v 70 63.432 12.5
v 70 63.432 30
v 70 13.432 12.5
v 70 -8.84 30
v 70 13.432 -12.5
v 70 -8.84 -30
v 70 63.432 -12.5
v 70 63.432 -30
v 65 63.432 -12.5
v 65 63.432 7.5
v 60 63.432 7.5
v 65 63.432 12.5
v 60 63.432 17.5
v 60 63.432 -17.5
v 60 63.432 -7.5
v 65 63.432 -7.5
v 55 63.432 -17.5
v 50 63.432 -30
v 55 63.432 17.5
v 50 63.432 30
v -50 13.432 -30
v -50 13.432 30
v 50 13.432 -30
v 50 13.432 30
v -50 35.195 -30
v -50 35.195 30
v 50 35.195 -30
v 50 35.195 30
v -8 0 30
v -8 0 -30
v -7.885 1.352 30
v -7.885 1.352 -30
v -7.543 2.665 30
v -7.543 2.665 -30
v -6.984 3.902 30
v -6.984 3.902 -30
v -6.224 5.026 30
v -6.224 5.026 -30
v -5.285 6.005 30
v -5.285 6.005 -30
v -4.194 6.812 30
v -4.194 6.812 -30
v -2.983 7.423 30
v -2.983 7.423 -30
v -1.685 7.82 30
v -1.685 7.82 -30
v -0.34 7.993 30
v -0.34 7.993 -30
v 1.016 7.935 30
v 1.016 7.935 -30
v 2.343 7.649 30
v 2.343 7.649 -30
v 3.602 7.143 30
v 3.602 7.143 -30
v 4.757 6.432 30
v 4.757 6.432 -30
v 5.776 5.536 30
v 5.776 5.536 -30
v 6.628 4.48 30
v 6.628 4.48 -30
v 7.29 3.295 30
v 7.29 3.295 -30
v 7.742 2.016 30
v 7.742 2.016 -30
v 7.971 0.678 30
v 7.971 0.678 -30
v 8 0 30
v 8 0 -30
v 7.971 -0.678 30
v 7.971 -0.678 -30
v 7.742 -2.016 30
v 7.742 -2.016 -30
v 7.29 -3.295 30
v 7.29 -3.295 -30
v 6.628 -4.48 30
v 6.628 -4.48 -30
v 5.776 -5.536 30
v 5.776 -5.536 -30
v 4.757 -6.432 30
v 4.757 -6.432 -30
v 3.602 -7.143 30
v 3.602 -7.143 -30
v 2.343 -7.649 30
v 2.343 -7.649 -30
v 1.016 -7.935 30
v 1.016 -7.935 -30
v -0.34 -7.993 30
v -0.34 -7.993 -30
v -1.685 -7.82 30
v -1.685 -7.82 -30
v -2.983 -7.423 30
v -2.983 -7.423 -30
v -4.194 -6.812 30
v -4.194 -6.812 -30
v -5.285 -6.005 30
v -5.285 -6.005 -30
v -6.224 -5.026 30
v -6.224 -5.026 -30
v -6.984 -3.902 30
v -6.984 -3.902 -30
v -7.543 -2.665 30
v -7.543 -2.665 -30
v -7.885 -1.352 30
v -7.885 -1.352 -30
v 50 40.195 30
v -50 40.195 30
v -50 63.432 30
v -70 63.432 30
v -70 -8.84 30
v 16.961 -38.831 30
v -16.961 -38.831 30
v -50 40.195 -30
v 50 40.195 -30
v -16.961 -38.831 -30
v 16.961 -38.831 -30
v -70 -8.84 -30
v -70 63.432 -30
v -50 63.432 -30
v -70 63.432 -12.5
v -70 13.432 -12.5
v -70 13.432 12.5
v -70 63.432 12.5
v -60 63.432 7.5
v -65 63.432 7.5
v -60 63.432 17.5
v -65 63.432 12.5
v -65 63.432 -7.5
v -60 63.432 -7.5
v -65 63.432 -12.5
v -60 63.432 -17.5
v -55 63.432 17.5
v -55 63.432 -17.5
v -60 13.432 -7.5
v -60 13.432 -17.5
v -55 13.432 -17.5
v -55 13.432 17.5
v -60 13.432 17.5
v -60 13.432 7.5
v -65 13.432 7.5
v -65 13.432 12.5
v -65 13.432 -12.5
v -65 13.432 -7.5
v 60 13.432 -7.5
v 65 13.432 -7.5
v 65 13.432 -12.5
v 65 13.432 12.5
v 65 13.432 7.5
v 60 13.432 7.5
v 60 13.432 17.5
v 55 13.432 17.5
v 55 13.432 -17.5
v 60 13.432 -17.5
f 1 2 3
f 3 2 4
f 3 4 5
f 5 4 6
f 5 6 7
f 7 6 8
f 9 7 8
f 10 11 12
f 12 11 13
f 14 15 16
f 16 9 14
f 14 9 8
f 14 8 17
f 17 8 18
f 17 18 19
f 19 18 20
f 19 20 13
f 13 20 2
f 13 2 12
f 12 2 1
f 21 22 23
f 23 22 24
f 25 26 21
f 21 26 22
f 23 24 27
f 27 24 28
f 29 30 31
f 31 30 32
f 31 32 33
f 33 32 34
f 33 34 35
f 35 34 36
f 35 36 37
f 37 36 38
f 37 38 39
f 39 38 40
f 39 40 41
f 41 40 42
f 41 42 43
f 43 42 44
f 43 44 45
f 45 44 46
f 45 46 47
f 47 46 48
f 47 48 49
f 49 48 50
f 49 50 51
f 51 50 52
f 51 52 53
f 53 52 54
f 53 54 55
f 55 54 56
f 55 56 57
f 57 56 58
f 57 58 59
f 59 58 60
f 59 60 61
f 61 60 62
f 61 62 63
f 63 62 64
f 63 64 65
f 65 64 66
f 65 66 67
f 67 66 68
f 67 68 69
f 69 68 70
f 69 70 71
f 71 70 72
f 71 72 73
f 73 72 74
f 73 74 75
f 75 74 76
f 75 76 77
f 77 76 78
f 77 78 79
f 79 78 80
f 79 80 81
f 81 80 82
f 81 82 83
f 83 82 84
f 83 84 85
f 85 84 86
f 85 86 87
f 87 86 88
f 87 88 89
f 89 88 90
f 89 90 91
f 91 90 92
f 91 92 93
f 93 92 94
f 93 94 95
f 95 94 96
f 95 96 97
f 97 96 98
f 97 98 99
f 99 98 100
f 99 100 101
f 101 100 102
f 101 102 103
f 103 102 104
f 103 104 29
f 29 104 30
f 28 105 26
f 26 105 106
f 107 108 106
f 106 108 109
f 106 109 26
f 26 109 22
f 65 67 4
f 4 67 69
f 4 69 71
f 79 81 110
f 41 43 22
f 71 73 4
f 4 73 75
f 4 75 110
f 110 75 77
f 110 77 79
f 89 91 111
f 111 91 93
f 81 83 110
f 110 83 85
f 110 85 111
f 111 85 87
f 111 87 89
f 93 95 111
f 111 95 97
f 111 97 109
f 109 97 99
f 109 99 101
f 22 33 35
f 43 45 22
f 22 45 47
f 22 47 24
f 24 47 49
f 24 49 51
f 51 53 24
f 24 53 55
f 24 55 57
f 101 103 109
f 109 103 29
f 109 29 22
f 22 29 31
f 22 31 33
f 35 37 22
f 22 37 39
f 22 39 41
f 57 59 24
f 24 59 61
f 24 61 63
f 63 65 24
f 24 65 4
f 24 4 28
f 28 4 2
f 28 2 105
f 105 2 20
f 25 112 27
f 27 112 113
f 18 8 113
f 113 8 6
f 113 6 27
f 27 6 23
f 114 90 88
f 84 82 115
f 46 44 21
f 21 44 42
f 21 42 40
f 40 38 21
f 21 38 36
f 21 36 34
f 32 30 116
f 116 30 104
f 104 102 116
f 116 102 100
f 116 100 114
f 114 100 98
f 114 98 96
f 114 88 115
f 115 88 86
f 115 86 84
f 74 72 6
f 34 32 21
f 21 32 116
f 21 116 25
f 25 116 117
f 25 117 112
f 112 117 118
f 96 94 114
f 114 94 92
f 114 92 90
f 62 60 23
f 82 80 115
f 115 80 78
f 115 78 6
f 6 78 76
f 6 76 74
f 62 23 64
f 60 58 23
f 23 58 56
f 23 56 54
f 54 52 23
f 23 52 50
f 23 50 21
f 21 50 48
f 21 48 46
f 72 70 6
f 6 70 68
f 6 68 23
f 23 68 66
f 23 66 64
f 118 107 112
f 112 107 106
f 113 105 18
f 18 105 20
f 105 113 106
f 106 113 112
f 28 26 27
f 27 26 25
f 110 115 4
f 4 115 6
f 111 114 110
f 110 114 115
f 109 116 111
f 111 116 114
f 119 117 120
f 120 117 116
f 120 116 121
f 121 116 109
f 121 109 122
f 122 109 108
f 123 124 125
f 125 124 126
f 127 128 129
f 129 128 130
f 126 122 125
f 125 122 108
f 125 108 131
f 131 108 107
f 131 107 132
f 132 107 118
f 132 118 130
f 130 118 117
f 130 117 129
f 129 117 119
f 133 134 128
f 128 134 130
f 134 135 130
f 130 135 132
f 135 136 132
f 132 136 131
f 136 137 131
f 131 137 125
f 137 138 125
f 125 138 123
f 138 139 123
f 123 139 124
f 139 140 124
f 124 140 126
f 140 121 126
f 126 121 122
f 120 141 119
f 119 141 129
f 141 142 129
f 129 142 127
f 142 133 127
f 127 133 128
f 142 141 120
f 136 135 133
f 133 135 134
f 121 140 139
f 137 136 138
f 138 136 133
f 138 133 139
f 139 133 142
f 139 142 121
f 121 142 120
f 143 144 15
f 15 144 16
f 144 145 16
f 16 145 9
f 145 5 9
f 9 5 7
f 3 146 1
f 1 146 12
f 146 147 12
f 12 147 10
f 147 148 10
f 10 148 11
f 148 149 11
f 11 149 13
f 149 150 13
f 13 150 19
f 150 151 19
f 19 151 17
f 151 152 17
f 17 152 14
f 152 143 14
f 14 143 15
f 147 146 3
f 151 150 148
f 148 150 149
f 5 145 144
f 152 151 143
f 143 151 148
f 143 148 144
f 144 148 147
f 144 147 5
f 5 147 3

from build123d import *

# Parameters (mm, degrees)
BOSS_EXTRUDE2_DEPTH            = 30
BOSS_EXTRUDE2_DEPTH_BACK       = 30
EXTRUDE_THIN2_START            = -25
EXTRUDE_THIN2_DEPTH            = 50
SKETCH2_W                      = 60
SKETCH2_H                      = 5
BOSS_EXTRUDE3_DEPTH            = 100
BOSS_EXTRUDE4_DEPTH            = 30
BOSS_EXTRUDE4_DEPTH_BACK       = 30
CUT_EXTRUDE2_REACH             = 143.361
SKETCH4_W                      = 60
SKETCH4_H                      = 5
CUT_EXTRUDE2_DIRECTION_2_REACH = 143.361
BOSS_EXTRUDE5_DEPTH            = 30
BOSS_EXTRUDE5_DEPTH_BACK       = 30
DRONE_ARM_FIT_CUT_DEPTH        = 50


# Read off the part's stored shape, not the designer's step: Extrude-Thin2
with BuildPart() as part:
    # Sketch1 → Boss-Extrude2 (new, two sides: drawn at the far end of the back side and taken through both)
    with BuildSketch(Plane.XY.offset(-BOSS_EXTRUDE2_DEPTH_BACK)):
        Polygon((-13.01396445, -23.830717844), (0, -23.830717844), (0, -18.830717844), (-11.698214449, -18.830717844), (-50, 2.827283512), (-50, 13.432214294), (-55, 13.432214294), (-55, -0.089432632), align=None)
        Polygon((0, -18.830717844), (0, -23.830717844), (13.01396445, -23.830717844), (55, -0.089432632), (55, 13.432214294), (50, 13.432214294), (50, 2.827283512), (11.698214449, -18.830717844), align=None)
        with BuildLine():
            Line((-11.698214449, -18.830717844), (0, -18.830717844))
            Line((0, -18.830717844), (0, -8))
            ThreePointArc((0, -8), (-8, 0), (0, 8))
            Line((0, 8), (0, 13.432214294))
            Line((0, 13.432214294), (-50, 13.432214294))
            Line((-50, 13.432214294), (-50, 2.827283512))
            Line((-50, 2.827283512), (-11.698214449, -18.830717844))
        make_face()
        with BuildLine():
            Line((0, -8), (0, -18.830717844))
            Line((0, -18.830717844), (11.698214449, -18.830717844))
            Line((11.698214449, -18.830717844), (50, 2.827283512))
            Line((50, 2.827283512), (50, 13.432214294))
            Line((50, 13.432214294), (0, 13.432214294))
            Line((0, 13.432214294), (0, 8))
            ThreePointArc((0, 8), (5.656854249, 5.656854249), (8, 0))
            ThreePointArc((8, 0), (5.656854249, -5.656854249), (0, -8))
        make_face()
    extrude(amount=BOSS_EXTRUDE2_DEPTH + BOSS_EXTRUDE2_DEPTH_BACK)

    # Extrude-Thin2 outline → Extrude-Thin2 (add)
    with BuildSketch(Plane.XY.offset(EXTRUDE_THIN2_START)):
        Polygon((50, 13.432214294), (55, 13.432214294), (55, 68.432214294), (-55, 68.432214294), (-55, 13.432214294), (-50, 13.432214294), (-50, 63.432214294), (50, 63.432214294), align=None)
    extrude(amount=EXTRUDE_THIN2_DEPTH)

    # Sketch2 → Boss-Extrude3 (add)
    with BuildSketch(Plane.ZY.offset(-50)):
        with Locations((0, 37.694873029)):
            Rectangle(SKETCH2_W, SKETCH2_H)
    extrude(amount=BOSS_EXTRUDE3_DEPTH)

    # Sketch1<6> → Boss-Extrude4 (add, two sides: drawn at the far end of the back side and taken through both)
    with BuildSketch(Plane.XY.offset(-BOSS_EXTRUDE4_DEPTH_BACK)):
        Polygon((-55, -0.089432632), (-55, 13.432214294), (-70, 13.432214294), (-70, -8.839581066), (-16.961214453, -38.830717844), (16.961214453, -38.830717844), (70, -8.839581066), (70, 13.432214294), (55, 13.432214294), (55, -0.089432632), (13.01396445, -23.830717844), (-13.01396445, -23.830717844), align=None)
    extrude(amount=BOSS_EXTRUDE4_DEPTH + BOSS_EXTRUDE4_DEPTH_BACK)

    # Cut-Extrude2: up to this face of the body (flat: up to its plane)
    cut_extrude2_end = Plane(part.part.faces().sort_by_distance((-55, 40.932214294, 0))[0])
    # Sketch4 → Cut-Extrude2 (cut, up to the picked face)
    with BuildSketch(Plane(origin=(-50, 0, 0), x_dir=(0, 0, -1), z_dir=(1, 0, 0)), mode=Mode.PRIVATE) as cut_extrude2_sk1:
        with Locations((0, 65.932214294)):
            Rectangle(SKETCH4_W, SKETCH4_H)
    cut_extrude2_tool1 = split(extrude(cut_extrude2_sk1.sketch, amount=-CUT_EXTRUDE2_REACH, mode=Mode.PRIVATE), bisect_by=cut_extrude2_end, keep=Keep.BOTH, mode=Mode.PRIVATE)
    add(cut_extrude2_tool1.solids().sort_by(Axis((-50, 65.932214, 0), (-1, 0, 0)))[0], mode=Mode.SUBTRACT)

    # Cut-Extrude2 direction 2: up to this face of the body (flat: up to its plane)
    cut_extrude2_direction_2_end = Plane(part.part.faces().sort_by_distance((55, 40.932214294, 0))[0])
    # Sketch4 → Cut-Extrude2 direction 2 (cut, up to the picked face)
    with BuildSketch(Plane(origin=(-50, 0, 0), x_dir=(0, 0, -1), z_dir=(1, 0, 0)), mode=Mode.PRIVATE) as cut_extrude2_direction_2_sk1:
        with Locations((0, 65.932214294)):
            Rectangle(SKETCH4_W, SKETCH4_H)
    cut_extrude2_direction_2_tool1 = split(extrude(cut_extrude2_direction_2_sk1.sketch, amount=CUT_EXTRUDE2_DIRECTION_2_REACH, mode=Mode.PRIVATE), bisect_by=cut_extrude2_direction_2_end, keep=Keep.BOTH, mode=Mode.PRIVATE)
    add(cut_extrude2_direction_2_tool1.solids().sort_by(Axis((-50, 65.932214, 0), (1, 0, 0)))[0], mode=Mode.SUBTRACT)

    # Sketch1<7> → Boss-Extrude5 (add, two sides: drawn at the far end of the back side and taken through both)
    with BuildSketch(Plane.XY.offset(-BOSS_EXTRUDE5_DEPTH_BACK)):
        Polygon((-70, 13.432214294), (-55, 13.432214294), (-50, 13.432214294), (-50, 38.432214294), (-50, 63.432214294), (-70, 63.432214294), (-70, 38.432214294), align=None)
        Polygon((50, 38.432214294), (50, 13.432214294), (55, 13.432214294), (70, 13.432214294), (70, 38.432214294), (70, 63.432214294), (50, 63.432214294), align=None)
    extrude(amount=BOSS_EXTRUDE5_DEPTH + BOSS_EXTRUDE5_DEPTH_BACK)

    # Sketch7 → Drone Arm fit cut (cut)
    with BuildSketch(Plane(origin=(0, 63.432214294, 0), x_dir=(1, 0, 0), z_dir=(0, 1, 0))):
        Polygon((-70, -12.5), (-70, 12.5), (-65, 12.5), (-65, 7.5), (-60, 7.5), (-60, 12.5), (-60, 17.5), (-55, 17.5), (-55, -17.5), (-60, -17.5), (-60, -12.5), (-60, -7.5), (-65, -7.5), (-65, -12.5), align=None)
    drone_arm_fit_cut = extrude(amount=-DRONE_ARM_FIT_CUT_DEPTH, mode=Mode.SUBTRACT)

    # Mirror Drone arm fit cut: Drone Arm fit cut across plane
    add(drone_arm_fit_cut.mirror(Plane(origin=(0, 0, 0), x_dir=(0, 0, 1), z_dir=(1, 0, 0))), mode=Mode.SUBTRACT)


solid = part.part
